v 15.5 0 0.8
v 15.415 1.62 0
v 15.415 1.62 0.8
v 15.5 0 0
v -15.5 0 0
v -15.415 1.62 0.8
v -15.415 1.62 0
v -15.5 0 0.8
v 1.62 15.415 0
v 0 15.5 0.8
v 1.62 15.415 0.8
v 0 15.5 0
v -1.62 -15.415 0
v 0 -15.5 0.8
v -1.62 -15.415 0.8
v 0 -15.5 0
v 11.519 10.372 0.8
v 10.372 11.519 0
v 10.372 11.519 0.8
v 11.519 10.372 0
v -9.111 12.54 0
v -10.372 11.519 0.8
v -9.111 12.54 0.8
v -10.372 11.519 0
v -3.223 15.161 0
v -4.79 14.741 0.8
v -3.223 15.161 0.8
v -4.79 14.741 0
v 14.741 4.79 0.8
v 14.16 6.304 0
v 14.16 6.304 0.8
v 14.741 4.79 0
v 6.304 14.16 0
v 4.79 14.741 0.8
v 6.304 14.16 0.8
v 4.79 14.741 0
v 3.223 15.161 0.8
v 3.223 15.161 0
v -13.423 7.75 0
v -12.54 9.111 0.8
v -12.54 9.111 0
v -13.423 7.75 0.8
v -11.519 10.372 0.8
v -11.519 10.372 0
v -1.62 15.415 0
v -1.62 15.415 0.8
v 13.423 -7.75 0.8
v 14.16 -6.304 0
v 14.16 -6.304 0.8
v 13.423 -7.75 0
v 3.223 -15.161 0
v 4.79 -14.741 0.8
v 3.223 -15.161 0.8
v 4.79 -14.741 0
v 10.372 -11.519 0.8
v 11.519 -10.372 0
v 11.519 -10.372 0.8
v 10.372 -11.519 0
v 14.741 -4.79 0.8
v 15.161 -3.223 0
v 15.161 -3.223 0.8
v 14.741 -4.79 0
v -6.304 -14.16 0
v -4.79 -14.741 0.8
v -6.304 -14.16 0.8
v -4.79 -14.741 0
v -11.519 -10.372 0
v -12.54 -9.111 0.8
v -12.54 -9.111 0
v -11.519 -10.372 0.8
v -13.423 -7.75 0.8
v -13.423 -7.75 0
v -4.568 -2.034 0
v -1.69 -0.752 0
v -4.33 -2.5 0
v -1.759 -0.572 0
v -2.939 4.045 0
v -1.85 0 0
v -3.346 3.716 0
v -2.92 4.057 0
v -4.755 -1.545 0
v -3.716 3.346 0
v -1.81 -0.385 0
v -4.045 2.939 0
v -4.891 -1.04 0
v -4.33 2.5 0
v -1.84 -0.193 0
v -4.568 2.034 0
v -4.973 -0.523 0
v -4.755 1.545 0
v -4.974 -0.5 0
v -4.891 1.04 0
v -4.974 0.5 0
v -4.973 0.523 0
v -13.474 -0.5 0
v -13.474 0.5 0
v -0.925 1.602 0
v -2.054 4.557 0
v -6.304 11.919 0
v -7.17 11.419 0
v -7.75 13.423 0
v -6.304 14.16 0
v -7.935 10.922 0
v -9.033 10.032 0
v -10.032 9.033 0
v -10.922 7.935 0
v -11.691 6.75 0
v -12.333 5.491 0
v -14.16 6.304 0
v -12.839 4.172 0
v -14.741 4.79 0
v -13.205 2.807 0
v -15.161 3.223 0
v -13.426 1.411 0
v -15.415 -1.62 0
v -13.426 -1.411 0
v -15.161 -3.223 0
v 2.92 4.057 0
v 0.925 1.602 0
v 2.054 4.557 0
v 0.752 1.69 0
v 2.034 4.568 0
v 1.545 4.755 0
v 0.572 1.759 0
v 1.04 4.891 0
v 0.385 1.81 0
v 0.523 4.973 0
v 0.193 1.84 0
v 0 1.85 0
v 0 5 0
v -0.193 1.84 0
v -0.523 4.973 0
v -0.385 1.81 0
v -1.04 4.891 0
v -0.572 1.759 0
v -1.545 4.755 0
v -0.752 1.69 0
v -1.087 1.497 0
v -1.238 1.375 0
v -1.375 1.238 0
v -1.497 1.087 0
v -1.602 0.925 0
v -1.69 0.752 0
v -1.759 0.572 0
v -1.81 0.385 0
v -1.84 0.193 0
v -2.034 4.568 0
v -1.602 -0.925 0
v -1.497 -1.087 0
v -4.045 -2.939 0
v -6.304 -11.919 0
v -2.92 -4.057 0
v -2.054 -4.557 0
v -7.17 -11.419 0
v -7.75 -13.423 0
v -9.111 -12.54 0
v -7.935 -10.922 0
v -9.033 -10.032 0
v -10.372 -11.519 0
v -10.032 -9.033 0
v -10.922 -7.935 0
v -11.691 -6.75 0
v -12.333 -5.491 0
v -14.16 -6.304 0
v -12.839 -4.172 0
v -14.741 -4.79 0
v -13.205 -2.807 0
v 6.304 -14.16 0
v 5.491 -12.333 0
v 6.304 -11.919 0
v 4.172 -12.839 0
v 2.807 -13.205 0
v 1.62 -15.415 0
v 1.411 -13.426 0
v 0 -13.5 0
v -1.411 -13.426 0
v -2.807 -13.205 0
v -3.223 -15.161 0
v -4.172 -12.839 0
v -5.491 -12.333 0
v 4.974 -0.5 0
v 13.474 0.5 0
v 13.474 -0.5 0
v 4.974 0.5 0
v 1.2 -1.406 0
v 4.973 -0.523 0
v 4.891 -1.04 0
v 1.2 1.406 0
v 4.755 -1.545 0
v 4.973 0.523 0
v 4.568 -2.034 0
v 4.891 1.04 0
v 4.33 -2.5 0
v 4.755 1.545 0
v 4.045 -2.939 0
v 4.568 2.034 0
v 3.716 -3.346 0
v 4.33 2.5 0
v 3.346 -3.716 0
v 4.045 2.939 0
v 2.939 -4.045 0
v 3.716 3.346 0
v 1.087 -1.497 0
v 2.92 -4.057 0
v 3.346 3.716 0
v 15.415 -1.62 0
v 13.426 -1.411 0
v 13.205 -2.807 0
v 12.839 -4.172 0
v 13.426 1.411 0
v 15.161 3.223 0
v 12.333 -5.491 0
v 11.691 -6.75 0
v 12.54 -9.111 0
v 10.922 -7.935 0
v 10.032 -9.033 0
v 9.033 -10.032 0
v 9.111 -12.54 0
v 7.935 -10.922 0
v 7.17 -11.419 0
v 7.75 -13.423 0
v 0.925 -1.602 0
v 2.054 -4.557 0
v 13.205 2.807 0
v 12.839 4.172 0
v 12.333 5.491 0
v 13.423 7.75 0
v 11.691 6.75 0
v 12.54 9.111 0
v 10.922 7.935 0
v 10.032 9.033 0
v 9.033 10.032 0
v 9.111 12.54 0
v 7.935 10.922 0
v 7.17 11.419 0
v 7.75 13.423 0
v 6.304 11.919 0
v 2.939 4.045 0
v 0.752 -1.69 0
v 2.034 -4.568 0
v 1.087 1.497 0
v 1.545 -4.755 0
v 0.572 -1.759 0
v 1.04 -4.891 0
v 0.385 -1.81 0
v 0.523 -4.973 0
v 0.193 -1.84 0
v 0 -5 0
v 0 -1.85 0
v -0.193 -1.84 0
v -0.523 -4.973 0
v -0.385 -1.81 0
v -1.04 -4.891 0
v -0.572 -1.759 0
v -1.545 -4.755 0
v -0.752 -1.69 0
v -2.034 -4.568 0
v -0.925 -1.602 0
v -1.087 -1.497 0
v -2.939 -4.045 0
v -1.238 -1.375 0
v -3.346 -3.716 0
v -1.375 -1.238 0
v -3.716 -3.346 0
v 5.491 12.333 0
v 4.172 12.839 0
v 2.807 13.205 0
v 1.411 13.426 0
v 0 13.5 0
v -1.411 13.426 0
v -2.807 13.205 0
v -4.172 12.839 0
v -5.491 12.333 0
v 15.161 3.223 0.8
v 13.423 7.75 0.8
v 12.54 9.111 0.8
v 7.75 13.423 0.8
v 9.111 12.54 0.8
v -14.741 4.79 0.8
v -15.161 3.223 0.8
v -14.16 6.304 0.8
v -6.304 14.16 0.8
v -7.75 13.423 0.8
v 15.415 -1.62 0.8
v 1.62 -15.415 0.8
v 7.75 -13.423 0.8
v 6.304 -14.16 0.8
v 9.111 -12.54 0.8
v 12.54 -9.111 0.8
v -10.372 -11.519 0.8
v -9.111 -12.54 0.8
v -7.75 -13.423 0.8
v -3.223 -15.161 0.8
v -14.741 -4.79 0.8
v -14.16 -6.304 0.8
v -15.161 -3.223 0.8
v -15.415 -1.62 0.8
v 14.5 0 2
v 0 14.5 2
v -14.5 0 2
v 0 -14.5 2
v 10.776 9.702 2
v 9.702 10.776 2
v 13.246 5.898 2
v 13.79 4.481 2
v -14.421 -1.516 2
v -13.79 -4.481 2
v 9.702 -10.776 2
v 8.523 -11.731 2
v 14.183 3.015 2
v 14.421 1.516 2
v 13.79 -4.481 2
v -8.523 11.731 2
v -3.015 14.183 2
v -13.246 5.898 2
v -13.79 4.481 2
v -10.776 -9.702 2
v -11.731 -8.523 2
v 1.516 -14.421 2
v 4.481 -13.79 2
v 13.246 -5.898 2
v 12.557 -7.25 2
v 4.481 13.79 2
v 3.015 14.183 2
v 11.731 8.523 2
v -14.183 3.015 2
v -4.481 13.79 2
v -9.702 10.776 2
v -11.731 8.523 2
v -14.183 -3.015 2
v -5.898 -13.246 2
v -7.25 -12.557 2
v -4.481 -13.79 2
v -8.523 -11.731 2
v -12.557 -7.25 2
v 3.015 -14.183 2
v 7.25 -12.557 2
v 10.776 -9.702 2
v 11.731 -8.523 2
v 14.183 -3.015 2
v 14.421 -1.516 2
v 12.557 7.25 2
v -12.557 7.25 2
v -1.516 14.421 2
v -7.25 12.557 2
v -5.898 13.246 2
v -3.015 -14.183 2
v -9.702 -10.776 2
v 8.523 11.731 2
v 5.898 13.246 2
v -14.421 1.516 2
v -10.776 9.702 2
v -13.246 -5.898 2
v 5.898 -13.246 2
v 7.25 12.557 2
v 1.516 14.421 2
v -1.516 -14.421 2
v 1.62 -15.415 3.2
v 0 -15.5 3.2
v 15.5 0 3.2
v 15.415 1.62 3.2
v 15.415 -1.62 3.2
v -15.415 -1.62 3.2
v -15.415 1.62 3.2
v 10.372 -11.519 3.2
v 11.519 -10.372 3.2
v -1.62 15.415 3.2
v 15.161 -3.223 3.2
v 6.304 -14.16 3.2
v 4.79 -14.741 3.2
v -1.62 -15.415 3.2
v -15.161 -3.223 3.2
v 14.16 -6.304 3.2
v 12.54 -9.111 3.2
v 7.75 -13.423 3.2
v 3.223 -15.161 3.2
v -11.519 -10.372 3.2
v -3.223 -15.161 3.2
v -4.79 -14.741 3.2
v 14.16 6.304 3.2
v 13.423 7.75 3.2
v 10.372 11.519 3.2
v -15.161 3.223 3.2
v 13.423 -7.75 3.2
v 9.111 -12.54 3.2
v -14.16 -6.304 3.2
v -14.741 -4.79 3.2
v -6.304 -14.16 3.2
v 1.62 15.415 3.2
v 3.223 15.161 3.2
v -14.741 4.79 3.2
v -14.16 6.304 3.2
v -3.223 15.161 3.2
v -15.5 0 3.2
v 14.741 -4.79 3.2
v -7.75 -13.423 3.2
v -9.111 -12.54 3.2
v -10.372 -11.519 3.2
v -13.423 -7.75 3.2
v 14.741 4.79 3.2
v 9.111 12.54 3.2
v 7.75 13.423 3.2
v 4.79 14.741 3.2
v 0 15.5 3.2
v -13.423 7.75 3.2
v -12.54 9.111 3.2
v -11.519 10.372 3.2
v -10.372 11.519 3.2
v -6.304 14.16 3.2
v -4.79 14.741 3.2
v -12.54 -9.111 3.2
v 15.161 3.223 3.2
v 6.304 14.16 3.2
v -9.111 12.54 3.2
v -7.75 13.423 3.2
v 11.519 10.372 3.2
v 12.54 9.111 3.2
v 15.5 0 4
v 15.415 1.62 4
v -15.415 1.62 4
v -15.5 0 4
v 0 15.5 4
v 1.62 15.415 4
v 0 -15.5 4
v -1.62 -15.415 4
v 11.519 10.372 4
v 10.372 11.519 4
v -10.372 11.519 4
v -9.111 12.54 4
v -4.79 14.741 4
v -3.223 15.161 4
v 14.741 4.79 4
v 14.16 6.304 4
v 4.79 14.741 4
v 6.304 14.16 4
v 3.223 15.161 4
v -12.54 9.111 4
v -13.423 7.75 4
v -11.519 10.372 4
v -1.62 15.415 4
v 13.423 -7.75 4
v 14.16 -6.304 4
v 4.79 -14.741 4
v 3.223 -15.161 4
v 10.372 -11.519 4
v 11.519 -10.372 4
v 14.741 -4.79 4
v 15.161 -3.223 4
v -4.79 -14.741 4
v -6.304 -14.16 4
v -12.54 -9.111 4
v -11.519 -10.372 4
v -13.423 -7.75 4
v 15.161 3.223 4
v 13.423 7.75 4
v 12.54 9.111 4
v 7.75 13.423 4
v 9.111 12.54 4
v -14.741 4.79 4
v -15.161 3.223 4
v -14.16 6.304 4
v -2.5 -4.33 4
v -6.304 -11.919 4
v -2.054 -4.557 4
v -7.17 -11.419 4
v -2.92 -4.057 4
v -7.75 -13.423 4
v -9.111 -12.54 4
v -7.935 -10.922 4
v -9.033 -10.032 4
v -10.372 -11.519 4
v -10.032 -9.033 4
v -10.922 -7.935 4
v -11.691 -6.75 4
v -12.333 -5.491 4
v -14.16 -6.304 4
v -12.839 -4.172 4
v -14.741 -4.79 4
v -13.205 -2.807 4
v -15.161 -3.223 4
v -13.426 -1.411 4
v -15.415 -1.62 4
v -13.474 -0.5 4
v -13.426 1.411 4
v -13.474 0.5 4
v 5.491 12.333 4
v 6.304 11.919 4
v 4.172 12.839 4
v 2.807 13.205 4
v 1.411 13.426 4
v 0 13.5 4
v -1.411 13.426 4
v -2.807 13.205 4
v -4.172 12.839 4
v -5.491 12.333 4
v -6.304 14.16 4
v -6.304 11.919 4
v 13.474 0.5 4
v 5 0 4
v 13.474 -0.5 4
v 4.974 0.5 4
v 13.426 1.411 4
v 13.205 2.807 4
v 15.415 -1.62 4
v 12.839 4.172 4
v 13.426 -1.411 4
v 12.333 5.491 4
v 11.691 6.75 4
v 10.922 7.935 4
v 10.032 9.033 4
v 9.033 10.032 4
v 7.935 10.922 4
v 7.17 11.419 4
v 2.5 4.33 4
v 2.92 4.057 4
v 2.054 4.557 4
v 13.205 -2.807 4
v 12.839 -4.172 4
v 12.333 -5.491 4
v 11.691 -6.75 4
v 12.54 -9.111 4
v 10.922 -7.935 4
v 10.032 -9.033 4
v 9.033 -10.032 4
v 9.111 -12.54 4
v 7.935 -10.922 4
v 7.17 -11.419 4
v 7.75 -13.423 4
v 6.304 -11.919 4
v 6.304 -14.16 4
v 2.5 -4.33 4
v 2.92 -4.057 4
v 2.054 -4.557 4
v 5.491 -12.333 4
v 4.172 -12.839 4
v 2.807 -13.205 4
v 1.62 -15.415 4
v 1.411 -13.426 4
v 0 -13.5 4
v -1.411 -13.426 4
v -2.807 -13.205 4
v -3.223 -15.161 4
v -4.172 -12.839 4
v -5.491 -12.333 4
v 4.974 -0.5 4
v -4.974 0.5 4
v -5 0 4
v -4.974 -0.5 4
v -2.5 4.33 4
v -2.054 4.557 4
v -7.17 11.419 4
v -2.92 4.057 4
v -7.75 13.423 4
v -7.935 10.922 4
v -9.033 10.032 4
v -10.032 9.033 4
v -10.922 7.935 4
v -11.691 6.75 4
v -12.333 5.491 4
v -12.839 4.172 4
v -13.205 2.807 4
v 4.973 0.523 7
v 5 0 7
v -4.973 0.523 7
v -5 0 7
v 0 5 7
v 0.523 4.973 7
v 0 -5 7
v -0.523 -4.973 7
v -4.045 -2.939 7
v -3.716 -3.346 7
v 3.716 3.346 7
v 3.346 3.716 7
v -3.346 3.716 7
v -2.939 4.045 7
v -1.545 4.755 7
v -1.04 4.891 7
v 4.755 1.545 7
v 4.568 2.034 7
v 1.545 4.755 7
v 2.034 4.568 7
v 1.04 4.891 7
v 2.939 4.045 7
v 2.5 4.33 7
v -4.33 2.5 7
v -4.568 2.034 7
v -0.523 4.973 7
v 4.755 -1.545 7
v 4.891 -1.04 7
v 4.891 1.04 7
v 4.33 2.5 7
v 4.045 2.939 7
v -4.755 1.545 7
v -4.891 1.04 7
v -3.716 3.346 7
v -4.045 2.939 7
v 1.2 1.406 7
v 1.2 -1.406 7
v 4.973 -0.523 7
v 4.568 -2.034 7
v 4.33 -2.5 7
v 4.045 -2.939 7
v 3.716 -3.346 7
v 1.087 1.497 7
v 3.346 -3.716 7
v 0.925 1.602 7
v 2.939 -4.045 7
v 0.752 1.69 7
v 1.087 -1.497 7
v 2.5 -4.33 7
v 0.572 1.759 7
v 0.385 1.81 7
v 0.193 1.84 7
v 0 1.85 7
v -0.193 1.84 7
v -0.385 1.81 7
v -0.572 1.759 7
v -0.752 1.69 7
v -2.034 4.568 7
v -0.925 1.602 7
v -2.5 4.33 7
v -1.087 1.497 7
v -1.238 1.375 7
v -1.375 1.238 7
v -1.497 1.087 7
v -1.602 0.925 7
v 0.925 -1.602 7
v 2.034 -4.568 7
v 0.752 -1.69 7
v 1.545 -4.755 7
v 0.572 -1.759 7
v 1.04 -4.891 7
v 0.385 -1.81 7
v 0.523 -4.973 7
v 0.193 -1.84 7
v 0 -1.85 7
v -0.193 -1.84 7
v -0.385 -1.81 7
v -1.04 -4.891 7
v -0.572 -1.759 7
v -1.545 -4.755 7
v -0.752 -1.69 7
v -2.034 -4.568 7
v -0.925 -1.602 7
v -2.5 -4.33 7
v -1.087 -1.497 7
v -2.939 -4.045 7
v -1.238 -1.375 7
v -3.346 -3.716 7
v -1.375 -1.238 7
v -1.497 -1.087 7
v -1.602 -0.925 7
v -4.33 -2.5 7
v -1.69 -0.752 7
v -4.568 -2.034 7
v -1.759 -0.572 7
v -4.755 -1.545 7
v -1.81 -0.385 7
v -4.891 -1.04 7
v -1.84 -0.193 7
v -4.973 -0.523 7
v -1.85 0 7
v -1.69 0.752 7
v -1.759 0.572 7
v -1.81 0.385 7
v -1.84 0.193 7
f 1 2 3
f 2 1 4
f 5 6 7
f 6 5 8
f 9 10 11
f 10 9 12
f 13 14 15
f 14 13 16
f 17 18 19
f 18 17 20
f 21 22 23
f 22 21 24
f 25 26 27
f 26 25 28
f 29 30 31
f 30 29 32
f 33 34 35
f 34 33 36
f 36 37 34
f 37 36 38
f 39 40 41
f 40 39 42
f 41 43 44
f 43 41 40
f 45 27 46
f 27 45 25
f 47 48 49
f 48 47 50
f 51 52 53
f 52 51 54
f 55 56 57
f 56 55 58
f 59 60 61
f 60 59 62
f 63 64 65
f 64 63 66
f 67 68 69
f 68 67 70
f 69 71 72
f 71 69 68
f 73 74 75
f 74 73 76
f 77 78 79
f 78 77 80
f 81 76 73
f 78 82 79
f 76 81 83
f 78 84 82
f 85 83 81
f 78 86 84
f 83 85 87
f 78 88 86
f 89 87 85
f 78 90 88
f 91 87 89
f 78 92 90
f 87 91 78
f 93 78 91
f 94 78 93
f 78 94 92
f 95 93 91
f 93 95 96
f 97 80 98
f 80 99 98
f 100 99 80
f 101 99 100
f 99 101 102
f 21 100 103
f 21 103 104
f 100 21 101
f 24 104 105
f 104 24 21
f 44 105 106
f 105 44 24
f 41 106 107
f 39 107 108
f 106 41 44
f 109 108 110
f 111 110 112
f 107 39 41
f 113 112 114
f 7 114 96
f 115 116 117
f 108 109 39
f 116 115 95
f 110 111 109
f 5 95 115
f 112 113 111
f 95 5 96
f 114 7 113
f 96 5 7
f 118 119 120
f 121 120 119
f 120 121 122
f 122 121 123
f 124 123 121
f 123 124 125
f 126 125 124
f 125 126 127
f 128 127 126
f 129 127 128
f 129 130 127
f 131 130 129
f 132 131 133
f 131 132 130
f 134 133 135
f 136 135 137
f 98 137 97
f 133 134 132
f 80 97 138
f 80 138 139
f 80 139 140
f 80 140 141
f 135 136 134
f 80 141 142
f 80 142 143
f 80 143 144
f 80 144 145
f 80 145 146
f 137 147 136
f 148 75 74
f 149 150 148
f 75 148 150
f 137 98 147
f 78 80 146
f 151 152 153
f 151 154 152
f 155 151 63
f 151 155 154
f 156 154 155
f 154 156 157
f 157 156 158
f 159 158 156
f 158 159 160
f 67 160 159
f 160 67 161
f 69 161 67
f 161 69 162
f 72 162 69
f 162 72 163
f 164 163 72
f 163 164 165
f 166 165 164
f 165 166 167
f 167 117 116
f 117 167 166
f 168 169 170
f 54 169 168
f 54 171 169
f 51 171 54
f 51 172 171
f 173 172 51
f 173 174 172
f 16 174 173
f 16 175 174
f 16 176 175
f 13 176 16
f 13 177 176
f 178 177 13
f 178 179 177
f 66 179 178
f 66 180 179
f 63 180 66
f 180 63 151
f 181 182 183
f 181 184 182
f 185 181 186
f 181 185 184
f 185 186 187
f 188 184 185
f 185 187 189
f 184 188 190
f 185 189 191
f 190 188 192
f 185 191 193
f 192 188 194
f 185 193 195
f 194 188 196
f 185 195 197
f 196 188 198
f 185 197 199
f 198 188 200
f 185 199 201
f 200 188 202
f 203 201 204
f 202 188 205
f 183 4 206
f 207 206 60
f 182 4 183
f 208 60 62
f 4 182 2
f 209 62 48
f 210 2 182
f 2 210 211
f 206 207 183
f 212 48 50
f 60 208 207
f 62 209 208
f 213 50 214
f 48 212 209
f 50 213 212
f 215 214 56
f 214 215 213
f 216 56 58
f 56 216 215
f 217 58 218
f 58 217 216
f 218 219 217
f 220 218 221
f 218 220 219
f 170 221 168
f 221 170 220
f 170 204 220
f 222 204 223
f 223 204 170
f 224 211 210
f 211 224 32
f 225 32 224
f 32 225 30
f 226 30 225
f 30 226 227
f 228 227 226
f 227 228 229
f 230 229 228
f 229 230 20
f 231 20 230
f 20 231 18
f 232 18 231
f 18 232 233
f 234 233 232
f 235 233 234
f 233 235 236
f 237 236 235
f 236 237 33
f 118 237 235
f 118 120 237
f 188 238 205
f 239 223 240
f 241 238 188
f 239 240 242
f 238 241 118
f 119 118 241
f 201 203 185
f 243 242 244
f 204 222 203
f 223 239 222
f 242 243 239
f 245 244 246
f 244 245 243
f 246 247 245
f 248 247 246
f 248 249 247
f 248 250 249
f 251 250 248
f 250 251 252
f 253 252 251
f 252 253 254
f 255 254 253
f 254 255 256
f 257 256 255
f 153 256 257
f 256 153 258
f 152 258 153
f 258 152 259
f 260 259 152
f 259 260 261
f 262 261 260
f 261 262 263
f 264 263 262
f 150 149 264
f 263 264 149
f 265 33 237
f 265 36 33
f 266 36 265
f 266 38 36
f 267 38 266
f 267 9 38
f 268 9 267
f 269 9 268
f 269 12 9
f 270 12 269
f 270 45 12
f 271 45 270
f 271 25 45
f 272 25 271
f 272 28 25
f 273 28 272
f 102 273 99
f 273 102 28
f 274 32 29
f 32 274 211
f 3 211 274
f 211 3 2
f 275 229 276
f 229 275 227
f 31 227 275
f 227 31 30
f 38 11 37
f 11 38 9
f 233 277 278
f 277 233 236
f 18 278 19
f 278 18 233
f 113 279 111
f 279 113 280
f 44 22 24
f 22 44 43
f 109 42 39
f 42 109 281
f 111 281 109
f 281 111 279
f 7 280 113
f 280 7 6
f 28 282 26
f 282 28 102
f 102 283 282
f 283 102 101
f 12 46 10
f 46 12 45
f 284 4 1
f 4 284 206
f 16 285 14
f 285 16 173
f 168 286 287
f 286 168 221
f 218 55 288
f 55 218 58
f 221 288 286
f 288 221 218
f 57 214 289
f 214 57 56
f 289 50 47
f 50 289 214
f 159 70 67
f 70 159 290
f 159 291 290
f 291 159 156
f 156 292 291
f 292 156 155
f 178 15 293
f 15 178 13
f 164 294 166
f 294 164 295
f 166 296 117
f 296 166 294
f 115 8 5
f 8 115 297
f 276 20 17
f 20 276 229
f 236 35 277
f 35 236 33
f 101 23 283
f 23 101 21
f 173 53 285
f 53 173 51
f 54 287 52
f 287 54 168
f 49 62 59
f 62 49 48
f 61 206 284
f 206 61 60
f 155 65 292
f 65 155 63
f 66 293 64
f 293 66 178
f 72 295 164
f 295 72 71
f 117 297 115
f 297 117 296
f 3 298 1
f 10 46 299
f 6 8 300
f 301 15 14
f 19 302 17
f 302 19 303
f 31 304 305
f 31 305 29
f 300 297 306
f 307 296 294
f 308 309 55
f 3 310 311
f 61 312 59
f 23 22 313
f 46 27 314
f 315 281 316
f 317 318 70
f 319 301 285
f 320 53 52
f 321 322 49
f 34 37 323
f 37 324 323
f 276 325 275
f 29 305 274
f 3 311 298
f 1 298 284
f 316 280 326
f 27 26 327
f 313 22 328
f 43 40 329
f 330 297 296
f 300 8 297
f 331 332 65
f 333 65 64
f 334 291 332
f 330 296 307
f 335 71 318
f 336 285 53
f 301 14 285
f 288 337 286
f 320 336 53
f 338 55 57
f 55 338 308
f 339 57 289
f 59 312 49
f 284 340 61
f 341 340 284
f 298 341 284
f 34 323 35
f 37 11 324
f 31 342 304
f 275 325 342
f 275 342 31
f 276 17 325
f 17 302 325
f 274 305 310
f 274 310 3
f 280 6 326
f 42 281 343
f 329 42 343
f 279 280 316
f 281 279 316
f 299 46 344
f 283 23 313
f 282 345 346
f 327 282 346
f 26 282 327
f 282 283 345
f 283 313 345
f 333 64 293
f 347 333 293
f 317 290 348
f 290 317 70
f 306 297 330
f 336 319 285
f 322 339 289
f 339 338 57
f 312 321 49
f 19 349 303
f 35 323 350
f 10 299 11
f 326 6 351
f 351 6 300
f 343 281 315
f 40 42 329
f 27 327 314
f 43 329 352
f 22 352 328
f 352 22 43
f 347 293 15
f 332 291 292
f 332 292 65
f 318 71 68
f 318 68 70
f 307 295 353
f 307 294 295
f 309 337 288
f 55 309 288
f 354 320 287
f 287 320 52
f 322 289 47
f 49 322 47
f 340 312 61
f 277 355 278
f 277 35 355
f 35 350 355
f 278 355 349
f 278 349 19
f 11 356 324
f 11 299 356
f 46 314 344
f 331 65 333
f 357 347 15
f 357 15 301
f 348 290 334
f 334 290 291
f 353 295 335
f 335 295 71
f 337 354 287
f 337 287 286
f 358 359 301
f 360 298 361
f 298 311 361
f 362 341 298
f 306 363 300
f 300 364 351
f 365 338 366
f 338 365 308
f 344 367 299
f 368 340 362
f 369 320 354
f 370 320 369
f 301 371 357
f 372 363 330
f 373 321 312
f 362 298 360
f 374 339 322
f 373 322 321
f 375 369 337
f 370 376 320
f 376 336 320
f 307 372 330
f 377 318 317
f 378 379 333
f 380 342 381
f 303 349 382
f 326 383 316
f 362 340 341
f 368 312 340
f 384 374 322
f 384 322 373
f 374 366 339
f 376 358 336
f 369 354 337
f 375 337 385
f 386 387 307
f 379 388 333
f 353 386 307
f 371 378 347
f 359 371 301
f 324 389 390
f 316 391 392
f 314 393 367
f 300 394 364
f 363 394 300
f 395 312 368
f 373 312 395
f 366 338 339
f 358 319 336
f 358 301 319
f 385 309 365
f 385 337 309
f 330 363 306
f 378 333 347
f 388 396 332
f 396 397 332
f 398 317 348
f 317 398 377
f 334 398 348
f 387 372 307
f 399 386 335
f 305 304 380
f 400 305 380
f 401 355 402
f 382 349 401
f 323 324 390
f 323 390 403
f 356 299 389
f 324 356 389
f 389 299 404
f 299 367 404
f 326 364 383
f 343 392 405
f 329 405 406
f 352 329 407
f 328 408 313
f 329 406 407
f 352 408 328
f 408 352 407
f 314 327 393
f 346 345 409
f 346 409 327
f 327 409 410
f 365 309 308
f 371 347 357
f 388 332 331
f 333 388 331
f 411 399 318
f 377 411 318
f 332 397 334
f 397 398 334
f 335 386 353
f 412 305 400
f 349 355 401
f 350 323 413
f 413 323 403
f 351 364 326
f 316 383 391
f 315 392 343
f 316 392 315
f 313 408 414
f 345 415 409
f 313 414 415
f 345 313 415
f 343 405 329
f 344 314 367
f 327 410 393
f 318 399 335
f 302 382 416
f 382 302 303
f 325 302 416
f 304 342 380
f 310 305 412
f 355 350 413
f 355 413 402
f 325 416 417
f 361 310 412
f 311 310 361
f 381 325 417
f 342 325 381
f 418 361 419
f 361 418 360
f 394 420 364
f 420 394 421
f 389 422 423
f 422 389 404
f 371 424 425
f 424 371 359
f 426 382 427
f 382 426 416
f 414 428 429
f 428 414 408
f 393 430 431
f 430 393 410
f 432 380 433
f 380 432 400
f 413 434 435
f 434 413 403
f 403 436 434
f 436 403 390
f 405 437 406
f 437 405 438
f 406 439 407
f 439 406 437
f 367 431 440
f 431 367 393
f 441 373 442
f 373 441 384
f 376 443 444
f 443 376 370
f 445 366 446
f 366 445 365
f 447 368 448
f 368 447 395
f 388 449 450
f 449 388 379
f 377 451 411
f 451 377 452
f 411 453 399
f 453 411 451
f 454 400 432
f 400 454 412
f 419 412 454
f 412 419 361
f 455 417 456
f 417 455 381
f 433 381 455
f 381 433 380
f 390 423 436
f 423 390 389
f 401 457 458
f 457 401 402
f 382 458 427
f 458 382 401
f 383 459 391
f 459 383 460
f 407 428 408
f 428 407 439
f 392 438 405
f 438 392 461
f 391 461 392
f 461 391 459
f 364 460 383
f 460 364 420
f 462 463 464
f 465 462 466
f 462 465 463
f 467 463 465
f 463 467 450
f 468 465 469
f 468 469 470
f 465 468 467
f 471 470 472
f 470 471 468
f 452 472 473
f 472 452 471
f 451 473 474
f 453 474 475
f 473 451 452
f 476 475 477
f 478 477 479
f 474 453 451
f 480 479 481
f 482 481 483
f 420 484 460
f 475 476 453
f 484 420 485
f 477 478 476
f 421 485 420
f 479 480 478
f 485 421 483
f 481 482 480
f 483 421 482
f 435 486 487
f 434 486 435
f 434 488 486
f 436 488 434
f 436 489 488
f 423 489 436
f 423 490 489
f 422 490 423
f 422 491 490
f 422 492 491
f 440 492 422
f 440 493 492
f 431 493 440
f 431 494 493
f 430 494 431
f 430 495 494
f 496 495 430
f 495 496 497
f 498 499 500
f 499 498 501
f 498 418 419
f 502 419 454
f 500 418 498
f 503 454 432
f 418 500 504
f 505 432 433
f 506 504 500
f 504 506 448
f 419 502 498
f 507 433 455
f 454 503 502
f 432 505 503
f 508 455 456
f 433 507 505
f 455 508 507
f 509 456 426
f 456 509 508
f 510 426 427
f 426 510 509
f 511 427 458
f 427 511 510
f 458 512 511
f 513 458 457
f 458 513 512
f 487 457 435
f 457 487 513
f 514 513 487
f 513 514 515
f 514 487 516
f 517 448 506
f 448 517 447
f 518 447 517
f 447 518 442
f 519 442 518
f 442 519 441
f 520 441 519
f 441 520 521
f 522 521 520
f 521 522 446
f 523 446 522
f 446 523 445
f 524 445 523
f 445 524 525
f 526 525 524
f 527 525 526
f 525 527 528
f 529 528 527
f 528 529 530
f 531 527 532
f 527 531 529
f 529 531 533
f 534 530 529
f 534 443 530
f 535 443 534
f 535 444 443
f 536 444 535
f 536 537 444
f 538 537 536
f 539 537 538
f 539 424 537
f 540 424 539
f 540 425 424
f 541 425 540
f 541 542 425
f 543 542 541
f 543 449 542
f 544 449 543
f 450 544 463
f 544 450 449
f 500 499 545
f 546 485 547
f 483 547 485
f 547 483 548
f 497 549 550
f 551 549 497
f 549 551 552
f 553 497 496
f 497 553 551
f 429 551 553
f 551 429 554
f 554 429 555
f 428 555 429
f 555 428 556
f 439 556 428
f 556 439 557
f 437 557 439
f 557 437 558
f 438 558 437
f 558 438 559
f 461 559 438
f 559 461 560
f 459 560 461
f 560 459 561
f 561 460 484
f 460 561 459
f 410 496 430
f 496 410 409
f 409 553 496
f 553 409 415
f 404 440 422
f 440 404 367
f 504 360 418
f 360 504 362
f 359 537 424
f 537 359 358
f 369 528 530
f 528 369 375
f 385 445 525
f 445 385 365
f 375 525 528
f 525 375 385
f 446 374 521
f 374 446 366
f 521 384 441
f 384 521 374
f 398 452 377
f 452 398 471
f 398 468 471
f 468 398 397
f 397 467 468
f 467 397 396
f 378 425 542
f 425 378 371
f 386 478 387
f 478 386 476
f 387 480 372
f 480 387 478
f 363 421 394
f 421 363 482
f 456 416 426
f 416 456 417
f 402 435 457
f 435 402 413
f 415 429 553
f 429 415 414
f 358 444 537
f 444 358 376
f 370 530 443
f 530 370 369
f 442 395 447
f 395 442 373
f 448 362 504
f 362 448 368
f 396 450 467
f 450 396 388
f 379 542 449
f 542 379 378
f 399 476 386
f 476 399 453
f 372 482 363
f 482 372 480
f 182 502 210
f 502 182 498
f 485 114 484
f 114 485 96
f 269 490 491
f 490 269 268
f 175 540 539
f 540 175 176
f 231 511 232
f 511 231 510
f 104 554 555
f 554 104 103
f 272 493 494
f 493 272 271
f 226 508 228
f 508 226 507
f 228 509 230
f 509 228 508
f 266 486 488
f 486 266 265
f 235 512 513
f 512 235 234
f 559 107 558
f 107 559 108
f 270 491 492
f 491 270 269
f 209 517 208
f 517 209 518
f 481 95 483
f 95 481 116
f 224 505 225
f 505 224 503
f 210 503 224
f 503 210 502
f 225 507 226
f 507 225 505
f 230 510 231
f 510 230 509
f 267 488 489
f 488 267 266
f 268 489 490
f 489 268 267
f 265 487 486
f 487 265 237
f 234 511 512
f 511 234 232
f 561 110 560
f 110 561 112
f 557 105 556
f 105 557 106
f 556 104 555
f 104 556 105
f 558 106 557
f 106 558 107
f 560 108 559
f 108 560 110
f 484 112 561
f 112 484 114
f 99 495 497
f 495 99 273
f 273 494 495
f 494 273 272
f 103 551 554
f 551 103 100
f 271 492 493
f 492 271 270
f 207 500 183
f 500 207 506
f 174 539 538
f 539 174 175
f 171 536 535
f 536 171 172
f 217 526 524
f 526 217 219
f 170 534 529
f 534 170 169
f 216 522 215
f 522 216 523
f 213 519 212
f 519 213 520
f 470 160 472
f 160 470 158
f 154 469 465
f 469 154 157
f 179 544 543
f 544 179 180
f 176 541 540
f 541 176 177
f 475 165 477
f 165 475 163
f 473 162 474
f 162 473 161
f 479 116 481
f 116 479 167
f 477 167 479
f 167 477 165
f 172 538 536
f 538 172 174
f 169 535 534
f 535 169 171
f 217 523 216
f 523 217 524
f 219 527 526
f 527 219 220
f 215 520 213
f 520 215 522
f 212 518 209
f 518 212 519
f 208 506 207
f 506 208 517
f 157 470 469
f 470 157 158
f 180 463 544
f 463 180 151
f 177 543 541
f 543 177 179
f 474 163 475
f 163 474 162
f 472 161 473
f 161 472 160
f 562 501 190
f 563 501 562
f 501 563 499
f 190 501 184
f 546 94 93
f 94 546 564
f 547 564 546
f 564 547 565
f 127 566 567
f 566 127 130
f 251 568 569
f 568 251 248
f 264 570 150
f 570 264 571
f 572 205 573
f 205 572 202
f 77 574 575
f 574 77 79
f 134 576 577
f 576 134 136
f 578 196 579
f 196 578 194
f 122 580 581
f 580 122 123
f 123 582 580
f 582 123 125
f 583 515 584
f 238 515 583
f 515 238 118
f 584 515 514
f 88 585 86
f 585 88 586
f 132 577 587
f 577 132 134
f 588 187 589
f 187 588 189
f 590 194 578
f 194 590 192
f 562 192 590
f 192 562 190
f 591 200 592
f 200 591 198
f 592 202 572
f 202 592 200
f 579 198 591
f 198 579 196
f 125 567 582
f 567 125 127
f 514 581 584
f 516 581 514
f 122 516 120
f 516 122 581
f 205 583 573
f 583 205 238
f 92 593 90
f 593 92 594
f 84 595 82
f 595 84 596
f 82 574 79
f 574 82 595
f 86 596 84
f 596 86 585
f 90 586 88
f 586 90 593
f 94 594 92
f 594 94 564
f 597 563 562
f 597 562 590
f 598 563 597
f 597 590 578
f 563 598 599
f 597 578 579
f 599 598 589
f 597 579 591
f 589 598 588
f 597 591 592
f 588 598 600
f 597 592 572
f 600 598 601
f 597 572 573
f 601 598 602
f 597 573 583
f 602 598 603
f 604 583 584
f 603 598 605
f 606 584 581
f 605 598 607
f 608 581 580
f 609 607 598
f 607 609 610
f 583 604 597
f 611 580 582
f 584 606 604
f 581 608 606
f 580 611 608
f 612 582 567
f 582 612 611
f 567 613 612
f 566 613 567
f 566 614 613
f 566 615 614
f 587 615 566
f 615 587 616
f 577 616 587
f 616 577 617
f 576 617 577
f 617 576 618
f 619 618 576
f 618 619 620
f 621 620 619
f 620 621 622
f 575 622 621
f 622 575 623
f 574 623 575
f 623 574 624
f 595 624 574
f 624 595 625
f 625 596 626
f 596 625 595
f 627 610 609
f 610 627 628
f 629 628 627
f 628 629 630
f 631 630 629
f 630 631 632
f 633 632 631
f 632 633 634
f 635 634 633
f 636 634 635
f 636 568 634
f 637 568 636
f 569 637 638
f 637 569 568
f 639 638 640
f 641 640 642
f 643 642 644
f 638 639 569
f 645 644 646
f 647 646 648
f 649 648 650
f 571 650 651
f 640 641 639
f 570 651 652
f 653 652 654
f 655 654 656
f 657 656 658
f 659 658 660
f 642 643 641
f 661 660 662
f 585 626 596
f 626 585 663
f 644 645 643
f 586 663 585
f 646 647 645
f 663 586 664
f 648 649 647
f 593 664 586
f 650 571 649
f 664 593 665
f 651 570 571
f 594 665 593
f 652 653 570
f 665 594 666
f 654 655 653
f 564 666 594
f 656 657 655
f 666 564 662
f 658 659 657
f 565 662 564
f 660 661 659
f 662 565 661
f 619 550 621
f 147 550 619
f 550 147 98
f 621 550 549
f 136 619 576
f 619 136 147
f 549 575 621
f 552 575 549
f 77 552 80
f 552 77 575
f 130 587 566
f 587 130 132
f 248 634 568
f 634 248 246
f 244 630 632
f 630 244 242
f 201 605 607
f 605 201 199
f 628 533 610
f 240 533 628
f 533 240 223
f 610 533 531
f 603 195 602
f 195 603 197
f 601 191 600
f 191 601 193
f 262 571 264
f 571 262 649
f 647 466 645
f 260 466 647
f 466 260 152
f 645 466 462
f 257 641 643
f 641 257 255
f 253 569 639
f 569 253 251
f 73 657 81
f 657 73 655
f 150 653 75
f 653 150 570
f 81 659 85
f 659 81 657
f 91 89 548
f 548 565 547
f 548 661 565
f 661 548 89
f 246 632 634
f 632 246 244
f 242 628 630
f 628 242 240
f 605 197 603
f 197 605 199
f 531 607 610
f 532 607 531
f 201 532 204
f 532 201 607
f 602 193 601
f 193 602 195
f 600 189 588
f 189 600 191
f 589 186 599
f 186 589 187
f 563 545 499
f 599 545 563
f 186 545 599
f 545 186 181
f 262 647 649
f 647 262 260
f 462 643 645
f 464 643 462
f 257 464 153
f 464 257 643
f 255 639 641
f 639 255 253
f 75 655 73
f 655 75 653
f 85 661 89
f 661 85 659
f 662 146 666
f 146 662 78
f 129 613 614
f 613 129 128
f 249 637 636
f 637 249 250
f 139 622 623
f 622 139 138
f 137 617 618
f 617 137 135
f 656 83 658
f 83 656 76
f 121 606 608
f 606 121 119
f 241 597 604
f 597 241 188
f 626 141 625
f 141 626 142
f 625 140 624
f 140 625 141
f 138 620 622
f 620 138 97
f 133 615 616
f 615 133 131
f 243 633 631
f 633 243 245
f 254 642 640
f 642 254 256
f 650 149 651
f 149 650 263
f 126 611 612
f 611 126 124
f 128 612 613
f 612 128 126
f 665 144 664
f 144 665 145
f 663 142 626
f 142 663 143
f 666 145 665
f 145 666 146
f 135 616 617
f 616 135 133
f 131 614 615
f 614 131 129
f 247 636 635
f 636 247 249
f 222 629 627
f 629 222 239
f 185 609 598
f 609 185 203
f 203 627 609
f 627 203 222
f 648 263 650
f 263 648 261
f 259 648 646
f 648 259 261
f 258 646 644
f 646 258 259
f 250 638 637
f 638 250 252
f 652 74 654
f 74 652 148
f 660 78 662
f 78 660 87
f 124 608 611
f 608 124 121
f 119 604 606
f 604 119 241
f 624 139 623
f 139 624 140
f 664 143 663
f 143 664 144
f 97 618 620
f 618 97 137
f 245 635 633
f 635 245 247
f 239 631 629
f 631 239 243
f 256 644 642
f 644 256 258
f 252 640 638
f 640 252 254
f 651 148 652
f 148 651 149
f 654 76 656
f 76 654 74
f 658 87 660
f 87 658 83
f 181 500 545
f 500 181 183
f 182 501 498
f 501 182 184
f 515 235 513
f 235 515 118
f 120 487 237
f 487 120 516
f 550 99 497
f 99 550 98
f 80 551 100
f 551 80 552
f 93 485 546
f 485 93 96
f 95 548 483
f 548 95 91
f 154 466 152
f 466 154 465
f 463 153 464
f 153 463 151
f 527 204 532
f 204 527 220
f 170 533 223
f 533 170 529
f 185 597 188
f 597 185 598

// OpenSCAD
// Rueda de 32mm (con junta tórica) para Sapoconcho
// o cualquier micromotor de 3mm de eje
$fn=60;
d_eje=3.7;
r_ext=15.5;

union(){
difference() {
union(){
cylinder(h=.8,r1=r_ext,r2=r_ext);
translate([0,0,.8])
cylinder(h=1.2,r1=r_ext,r2=r_ext-1);
translate([0,0,2])
cylinder(h=1.2,r1=r_ext-1,r2=r_ext);
translate([0,0,3.2])
cylinder(h=.8,r1=r_ext,r2=r_ext);
}
translate([0,0,-1])cylinder(h=6,r=r_ext-2);
}        
difference(){
cylinder(h=7,d=10);
translate([0,0,-1])cylinder(h=9,d=d_eje);
}
translate([1.20,-2,0])cube(size=[2,4,7]);
for(i=[0:60:300]){
rotate([0,0,i])translate([2,-0.5,0])cube([12,1,4]);
}
}
